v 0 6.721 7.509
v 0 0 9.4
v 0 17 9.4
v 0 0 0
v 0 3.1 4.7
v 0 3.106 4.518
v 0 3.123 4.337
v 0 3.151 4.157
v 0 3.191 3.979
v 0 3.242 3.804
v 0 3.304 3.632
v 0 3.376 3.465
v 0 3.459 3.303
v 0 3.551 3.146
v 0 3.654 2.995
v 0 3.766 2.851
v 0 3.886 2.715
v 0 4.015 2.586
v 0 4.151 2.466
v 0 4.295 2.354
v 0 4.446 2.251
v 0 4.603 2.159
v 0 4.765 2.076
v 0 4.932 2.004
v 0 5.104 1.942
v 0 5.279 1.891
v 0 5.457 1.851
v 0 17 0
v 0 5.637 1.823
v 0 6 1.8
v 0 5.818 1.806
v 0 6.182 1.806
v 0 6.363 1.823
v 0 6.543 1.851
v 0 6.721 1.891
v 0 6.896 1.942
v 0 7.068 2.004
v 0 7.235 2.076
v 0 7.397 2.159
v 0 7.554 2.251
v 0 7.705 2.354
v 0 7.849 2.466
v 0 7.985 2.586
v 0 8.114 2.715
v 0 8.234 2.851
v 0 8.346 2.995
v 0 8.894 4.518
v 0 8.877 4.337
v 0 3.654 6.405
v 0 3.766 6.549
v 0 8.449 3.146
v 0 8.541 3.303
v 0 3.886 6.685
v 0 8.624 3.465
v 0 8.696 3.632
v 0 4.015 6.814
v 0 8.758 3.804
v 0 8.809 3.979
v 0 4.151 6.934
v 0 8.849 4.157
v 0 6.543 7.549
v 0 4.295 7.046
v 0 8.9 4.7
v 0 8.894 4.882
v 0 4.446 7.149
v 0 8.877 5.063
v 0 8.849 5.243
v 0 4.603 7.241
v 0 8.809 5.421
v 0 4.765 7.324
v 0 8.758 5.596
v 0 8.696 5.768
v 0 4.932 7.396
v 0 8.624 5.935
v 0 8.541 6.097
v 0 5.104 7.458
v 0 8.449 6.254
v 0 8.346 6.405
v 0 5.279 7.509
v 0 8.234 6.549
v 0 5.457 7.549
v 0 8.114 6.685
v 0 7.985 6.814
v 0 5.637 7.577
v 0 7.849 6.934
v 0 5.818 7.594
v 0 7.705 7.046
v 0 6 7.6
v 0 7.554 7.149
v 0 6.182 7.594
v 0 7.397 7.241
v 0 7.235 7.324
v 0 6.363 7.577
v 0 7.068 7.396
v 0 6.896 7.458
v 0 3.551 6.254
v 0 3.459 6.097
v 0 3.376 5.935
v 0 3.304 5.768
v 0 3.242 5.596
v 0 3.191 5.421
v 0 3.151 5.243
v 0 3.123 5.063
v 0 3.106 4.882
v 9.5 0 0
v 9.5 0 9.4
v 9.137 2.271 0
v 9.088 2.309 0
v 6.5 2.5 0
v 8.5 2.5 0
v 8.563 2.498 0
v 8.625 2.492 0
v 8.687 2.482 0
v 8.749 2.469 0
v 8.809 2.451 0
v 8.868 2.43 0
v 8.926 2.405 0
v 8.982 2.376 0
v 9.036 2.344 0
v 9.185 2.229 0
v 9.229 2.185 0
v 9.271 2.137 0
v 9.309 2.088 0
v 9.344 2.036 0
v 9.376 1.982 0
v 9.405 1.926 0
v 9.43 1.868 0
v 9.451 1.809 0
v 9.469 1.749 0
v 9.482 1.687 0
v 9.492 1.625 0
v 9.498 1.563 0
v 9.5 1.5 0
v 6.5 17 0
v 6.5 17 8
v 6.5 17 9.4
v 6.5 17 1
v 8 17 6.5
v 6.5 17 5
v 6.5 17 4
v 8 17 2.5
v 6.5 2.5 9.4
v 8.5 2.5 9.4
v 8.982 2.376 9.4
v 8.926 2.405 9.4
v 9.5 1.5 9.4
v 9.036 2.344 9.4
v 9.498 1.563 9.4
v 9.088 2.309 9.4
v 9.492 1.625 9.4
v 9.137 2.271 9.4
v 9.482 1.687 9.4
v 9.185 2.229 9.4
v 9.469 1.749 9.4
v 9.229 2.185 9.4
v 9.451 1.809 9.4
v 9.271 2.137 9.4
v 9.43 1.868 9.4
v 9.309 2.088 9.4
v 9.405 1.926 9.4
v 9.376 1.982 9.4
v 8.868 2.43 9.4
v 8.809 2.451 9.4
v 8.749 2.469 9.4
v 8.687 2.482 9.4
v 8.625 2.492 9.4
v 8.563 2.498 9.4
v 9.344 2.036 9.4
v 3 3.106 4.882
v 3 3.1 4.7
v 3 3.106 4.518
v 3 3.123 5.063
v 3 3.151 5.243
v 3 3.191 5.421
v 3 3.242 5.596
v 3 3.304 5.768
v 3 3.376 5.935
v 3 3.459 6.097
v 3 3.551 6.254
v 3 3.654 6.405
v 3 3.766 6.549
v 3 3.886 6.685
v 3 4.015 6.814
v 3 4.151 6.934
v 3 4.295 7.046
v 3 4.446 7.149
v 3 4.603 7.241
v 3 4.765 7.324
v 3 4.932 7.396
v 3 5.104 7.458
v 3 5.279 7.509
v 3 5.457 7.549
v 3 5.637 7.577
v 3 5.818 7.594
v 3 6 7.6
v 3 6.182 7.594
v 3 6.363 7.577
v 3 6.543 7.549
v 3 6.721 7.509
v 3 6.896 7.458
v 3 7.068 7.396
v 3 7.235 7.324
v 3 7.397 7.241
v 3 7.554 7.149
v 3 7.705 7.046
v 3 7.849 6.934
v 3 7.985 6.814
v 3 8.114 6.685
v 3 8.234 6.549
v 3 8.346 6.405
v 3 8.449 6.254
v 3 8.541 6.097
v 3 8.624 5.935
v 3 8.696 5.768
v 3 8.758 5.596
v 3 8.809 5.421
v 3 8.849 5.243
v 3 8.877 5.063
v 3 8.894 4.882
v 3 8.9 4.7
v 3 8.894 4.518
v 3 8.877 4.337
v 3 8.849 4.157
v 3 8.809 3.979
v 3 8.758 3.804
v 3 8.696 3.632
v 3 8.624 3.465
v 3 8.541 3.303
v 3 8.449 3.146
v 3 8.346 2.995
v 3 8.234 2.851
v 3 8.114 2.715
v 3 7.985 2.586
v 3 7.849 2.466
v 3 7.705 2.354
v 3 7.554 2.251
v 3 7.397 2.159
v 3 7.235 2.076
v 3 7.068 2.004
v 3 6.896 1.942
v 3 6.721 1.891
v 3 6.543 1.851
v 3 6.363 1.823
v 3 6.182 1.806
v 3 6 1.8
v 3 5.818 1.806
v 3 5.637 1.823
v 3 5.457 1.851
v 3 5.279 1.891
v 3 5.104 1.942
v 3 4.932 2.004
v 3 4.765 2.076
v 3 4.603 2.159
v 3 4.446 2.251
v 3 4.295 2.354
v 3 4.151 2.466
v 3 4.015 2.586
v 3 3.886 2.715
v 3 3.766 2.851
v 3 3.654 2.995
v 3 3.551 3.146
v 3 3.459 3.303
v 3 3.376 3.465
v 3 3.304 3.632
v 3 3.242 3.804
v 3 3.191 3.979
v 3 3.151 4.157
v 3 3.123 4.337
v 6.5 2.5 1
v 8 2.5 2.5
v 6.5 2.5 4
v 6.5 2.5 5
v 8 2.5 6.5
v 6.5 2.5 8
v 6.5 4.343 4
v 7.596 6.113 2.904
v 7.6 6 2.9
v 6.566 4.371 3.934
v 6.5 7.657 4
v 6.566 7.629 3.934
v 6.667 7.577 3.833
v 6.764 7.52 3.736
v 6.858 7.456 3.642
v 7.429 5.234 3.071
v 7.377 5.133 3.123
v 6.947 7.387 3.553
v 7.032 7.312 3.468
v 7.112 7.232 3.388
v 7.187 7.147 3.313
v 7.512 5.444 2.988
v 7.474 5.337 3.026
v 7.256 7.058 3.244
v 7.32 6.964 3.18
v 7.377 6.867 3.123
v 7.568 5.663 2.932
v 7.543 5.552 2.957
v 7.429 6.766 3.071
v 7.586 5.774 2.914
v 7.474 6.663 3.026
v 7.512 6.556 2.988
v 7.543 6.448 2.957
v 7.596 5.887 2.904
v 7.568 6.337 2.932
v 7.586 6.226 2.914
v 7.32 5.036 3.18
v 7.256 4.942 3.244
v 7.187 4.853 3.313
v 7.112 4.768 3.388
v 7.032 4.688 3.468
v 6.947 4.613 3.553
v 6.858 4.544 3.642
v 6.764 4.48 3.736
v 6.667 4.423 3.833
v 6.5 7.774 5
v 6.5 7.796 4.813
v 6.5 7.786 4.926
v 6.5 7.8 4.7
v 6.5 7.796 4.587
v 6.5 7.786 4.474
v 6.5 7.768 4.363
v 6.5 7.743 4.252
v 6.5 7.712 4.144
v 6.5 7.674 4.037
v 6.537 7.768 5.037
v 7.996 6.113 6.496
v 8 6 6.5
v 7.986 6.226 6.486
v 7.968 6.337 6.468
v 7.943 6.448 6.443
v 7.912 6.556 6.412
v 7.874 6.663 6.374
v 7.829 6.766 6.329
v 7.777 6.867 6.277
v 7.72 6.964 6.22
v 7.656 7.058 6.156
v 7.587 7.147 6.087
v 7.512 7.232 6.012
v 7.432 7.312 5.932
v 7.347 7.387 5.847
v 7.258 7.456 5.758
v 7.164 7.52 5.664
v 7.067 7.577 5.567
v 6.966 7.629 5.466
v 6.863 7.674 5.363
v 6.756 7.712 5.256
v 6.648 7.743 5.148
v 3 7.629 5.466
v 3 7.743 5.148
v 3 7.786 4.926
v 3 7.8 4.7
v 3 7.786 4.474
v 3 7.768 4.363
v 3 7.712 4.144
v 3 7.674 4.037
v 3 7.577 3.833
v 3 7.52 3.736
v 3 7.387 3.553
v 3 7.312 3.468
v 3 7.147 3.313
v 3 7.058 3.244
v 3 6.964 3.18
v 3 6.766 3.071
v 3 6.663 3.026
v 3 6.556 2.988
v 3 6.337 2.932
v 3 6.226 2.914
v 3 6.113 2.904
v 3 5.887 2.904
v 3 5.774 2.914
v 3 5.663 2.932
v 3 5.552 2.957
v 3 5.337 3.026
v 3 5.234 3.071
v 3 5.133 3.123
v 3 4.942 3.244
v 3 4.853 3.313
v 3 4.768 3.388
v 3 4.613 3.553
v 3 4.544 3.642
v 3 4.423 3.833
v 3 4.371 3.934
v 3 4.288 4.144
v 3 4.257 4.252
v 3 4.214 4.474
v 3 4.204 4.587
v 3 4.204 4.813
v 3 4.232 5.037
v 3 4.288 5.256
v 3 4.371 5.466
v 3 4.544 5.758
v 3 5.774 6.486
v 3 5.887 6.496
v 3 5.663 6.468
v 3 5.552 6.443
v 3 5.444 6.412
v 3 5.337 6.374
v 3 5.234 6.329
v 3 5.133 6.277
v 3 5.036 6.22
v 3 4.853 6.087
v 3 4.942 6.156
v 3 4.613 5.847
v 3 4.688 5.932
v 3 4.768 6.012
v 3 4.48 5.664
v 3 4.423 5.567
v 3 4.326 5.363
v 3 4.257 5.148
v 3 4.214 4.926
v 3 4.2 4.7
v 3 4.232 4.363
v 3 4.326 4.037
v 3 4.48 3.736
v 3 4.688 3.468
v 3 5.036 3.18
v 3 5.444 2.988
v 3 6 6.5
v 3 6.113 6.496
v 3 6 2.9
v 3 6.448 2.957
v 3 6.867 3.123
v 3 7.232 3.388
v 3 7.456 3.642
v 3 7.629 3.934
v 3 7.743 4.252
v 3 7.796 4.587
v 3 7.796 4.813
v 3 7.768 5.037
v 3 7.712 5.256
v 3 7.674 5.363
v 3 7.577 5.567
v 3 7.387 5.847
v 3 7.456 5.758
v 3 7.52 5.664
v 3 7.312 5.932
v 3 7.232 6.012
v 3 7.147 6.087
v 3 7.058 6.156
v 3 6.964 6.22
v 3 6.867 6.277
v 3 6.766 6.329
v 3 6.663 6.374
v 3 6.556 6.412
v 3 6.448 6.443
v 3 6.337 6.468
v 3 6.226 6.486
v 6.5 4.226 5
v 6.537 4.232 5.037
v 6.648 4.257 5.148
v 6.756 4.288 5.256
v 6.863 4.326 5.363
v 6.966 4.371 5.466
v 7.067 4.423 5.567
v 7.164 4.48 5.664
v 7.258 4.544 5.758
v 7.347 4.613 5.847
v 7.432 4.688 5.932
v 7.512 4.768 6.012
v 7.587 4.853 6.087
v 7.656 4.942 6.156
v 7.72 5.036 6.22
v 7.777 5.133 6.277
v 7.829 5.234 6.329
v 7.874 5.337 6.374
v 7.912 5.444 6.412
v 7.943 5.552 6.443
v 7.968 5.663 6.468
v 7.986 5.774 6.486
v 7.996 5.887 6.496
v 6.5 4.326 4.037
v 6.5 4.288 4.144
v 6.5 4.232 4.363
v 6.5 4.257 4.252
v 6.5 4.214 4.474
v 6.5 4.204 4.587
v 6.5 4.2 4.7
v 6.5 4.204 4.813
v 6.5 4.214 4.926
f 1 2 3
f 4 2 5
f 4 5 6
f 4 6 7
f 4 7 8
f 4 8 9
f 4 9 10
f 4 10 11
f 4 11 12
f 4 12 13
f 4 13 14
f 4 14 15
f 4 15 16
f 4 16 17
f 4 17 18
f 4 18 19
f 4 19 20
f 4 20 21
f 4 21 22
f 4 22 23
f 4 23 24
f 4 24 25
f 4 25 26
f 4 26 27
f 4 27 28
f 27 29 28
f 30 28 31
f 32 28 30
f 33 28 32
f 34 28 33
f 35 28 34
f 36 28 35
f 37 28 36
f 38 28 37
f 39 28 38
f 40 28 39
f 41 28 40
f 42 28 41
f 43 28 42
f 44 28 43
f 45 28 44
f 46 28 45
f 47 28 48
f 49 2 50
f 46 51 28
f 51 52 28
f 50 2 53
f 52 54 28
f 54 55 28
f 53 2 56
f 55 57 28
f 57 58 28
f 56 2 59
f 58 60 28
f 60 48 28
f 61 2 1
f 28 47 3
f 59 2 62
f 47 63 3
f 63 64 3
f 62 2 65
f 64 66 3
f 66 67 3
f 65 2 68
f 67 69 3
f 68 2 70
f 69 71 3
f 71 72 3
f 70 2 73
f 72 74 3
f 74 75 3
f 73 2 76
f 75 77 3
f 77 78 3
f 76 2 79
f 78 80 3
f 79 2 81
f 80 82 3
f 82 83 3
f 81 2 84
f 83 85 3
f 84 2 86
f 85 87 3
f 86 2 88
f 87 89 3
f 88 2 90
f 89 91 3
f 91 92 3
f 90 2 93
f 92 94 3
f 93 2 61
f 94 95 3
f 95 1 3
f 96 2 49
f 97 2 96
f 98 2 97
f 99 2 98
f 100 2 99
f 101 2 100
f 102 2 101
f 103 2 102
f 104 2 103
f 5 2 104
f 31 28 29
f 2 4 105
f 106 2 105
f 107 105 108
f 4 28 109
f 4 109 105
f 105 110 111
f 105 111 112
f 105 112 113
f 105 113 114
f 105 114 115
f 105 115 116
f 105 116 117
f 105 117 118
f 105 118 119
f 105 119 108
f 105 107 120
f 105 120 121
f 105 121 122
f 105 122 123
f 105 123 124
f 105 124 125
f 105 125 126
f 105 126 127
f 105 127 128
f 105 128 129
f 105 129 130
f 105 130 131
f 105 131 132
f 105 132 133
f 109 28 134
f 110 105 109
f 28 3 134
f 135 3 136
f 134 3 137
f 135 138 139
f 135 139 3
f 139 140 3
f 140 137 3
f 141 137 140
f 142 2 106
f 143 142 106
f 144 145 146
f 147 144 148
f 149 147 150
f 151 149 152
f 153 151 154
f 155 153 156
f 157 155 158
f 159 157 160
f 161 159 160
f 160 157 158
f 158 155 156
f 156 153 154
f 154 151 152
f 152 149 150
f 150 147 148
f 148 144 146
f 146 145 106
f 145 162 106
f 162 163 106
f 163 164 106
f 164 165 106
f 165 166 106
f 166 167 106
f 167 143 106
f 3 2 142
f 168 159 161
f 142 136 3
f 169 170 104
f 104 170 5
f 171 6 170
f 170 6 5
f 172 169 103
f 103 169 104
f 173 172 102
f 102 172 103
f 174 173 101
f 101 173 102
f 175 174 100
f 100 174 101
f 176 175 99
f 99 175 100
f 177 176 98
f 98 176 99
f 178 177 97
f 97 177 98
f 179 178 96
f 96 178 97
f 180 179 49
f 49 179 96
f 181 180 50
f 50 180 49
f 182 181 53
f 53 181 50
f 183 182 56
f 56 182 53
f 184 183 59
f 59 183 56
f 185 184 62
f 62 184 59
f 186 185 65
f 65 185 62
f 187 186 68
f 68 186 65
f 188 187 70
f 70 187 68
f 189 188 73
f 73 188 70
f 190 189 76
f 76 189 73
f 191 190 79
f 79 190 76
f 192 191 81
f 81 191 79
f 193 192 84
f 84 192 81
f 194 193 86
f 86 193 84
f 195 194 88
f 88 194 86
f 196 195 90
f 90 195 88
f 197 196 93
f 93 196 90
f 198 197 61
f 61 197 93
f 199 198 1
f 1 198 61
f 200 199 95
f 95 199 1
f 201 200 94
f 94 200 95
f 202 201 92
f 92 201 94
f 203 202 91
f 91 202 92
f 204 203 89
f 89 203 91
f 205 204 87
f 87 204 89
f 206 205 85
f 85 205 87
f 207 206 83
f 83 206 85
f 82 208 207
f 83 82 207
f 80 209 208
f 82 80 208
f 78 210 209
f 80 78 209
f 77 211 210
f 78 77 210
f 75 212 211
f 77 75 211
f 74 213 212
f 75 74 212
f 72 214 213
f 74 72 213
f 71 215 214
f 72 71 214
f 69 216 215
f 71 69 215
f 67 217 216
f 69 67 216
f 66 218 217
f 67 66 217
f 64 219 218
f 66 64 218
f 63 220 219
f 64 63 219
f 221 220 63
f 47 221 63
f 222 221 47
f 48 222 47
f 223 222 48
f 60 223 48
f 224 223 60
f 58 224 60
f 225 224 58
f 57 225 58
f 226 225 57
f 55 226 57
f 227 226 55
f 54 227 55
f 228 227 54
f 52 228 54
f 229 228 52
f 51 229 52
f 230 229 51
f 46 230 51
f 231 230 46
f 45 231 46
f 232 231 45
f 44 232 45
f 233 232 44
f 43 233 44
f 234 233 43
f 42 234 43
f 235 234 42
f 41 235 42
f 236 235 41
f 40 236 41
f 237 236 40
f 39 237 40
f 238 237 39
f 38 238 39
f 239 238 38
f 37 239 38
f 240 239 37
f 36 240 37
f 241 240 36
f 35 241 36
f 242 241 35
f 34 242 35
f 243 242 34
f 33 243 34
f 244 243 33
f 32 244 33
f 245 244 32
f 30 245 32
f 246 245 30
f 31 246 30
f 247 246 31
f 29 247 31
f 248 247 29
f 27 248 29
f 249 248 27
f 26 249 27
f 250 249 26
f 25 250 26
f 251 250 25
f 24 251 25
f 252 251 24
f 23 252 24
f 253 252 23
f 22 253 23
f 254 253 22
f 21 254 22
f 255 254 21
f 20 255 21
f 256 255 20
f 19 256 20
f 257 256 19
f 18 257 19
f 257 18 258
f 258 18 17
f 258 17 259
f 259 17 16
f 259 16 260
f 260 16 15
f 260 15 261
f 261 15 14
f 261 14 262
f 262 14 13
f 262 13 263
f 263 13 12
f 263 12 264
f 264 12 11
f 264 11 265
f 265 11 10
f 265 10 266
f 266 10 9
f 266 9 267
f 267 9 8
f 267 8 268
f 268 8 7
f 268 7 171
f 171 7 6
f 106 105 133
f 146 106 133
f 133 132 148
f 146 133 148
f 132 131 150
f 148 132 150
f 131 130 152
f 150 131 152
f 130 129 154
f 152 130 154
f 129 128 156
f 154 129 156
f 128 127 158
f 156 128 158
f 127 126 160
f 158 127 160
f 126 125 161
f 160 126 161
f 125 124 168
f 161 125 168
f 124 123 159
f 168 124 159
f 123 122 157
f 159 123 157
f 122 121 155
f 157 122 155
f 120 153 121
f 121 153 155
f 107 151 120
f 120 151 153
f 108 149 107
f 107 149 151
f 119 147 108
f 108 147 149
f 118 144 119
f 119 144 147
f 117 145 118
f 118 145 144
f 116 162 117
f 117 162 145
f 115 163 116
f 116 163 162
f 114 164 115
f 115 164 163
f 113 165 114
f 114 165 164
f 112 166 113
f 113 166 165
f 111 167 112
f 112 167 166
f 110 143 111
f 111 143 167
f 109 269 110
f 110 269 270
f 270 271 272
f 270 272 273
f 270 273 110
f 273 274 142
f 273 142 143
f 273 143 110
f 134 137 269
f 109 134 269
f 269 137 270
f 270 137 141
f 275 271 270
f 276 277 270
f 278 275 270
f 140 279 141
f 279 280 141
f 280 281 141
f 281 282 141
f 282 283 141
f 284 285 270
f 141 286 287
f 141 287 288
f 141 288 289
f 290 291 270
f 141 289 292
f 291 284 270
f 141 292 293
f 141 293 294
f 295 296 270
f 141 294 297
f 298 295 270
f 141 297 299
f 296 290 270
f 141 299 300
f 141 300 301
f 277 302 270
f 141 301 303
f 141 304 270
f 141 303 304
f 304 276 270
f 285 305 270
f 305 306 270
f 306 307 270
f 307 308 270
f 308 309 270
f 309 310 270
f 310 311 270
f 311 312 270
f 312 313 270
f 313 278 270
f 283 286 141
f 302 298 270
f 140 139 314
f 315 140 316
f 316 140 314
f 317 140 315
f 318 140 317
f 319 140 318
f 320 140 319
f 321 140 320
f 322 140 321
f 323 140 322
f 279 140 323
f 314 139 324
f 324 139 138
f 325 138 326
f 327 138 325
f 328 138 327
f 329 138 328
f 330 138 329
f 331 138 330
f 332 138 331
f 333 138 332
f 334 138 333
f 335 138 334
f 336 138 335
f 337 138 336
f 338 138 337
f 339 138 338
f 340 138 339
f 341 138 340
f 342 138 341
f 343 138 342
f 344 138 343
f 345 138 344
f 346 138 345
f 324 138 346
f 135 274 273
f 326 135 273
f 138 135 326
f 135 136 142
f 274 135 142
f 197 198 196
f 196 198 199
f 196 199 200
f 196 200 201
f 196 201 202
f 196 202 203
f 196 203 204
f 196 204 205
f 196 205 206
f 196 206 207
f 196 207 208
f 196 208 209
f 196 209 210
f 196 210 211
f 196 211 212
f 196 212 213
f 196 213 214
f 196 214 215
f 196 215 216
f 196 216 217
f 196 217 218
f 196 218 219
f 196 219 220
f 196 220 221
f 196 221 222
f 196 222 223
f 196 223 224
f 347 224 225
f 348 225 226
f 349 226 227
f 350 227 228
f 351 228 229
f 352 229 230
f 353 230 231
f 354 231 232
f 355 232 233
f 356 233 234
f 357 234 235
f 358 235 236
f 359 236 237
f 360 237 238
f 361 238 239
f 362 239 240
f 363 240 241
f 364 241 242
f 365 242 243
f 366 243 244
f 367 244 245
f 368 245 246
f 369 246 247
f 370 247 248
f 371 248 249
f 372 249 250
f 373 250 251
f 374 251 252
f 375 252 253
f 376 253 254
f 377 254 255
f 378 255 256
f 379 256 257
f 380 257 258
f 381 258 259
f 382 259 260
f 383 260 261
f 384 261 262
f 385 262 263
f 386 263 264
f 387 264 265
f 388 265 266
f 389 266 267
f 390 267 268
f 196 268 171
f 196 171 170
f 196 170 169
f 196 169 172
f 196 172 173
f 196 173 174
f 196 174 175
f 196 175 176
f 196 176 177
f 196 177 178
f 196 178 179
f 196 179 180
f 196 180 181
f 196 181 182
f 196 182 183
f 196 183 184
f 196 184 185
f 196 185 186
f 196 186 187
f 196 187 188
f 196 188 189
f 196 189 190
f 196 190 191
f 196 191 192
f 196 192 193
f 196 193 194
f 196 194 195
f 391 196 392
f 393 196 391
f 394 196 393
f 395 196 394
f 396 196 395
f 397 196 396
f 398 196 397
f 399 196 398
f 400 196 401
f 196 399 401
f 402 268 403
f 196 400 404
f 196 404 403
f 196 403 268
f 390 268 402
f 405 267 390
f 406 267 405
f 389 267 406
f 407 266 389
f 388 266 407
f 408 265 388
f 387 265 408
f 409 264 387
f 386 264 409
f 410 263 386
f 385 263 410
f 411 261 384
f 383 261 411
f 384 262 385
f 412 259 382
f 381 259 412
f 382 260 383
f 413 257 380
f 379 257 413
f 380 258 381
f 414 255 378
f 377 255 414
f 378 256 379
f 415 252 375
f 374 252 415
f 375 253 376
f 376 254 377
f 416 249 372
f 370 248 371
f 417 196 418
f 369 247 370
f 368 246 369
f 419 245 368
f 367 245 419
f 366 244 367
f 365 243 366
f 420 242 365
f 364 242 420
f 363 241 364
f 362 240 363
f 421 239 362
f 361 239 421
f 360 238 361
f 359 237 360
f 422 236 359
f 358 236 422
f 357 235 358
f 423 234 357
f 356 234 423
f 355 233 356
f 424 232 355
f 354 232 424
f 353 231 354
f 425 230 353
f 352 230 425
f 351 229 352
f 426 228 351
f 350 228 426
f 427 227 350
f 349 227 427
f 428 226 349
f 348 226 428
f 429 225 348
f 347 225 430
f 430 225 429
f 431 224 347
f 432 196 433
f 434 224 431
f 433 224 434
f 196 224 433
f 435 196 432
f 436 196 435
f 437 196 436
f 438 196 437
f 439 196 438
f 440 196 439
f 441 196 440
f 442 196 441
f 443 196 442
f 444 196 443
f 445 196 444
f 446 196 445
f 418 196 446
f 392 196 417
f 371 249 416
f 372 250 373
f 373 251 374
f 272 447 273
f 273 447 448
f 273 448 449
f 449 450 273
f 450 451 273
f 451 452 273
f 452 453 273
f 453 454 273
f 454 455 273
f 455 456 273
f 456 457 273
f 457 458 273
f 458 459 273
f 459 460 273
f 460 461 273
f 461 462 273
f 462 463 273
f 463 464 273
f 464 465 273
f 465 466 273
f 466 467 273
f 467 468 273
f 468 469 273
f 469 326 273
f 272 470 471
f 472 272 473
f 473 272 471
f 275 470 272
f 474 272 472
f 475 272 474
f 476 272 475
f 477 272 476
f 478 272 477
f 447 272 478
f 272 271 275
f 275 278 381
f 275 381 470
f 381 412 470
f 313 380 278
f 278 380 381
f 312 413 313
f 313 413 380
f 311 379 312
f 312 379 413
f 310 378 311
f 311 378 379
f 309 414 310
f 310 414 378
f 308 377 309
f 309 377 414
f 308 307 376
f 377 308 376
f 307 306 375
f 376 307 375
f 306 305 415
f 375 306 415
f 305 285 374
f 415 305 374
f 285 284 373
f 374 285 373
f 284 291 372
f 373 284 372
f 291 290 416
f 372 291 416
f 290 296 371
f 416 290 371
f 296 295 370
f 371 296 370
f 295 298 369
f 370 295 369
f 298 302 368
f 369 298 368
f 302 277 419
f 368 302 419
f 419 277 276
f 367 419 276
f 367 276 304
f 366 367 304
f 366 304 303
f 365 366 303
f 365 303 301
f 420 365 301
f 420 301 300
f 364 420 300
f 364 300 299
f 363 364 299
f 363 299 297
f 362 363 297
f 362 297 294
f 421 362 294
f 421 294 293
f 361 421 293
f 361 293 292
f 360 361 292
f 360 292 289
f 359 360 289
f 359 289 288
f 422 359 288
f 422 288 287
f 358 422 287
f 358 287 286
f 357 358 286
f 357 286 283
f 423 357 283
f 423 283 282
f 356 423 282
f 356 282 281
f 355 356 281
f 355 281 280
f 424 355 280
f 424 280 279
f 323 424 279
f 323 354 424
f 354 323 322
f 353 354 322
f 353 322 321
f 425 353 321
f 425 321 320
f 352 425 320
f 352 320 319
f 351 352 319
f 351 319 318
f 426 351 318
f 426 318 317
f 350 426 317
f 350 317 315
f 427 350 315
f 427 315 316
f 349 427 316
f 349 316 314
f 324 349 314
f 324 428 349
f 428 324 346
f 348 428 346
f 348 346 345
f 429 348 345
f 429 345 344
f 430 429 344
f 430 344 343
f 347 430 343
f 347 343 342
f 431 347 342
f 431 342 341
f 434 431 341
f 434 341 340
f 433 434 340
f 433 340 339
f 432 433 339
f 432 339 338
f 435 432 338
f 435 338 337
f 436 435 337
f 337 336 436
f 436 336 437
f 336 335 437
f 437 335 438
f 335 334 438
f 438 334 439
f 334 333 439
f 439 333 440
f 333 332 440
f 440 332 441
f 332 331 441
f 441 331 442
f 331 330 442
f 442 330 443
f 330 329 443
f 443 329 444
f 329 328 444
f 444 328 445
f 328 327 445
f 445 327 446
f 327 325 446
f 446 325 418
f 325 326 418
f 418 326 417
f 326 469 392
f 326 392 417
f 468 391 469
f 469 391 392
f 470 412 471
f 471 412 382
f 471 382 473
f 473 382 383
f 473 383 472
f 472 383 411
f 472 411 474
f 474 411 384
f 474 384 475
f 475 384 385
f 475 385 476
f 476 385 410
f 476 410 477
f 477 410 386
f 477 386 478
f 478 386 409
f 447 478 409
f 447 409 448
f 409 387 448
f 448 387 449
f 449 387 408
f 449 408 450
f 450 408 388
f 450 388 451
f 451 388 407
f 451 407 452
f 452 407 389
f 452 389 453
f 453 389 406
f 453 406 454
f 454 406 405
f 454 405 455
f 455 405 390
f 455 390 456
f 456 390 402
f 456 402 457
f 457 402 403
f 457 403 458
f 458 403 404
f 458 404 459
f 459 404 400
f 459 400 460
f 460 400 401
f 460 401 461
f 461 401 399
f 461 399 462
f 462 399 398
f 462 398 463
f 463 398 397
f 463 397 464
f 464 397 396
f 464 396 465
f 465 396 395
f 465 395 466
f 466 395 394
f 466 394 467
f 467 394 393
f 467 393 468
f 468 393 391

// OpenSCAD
// Created from Code_Xcarriage_B.stl
// https://github.com/Mecan0/Code
// By J.Rodigo (www.jodrigo.net)
// Licence Creative commons atribution & share alike.

/**************************/
// Parámetros de la pieza  /
/**************************/

dGran = 5.8;	// Diámetro del taladro exterior (5.8)
dPeque = 3.6;	// Diámetro del taladro interior (3.6)


// Dientes de sujeción 
module diente(){
	rotate( -135, [0, 1, 0])
	cube([3, 14.5, 3]);
}

// Saliente redondeado 
module saliente(){
	hull(){
		// Parte plana
		translate([6.5, 0, 0])
		cube([3, 1.5, 9.4]);
		translate([6.5, 1.5, 0])
		cube([2, 1, 9.4]);
		// Redondeo 
		translate([8.5, 1.5, 0])
		cylinder(h = 9.4, r = 1, $fn=100);
	}
}

// Taladros de la pieza
module taladro(){
	// Pequeño
	translate([-1, 6, 4.7])
	rotate( 90, [0, 1, 0])
	cylinder(h = 10, r = dPeque/2, $fn=100);
	// Grande
	translate([-1, 6, 4.7])
	rotate( 90, [0, 1, 0])
	cylinder(h = 4, r = dGran/2, $fn=100);
}

// Pieza y las operaciones
module pieza(){
	difference () {
		// Parte solida de la pieza
		union() {
			// Cubo base a lo largo del eje Y
			cube([6.5, 17, 9.4]);	
			// Saliente redondeado
			saliente();
			// Posicionamos los dos diente 
			translate([8, 2.5, 2.5])
			diente();
			translate([8, 2.5, 6.5])
			diente();
		}
		// Aplicamos los taladros
		taladro();
	}	
}

// Generamos la pieza!!

	pieza();
